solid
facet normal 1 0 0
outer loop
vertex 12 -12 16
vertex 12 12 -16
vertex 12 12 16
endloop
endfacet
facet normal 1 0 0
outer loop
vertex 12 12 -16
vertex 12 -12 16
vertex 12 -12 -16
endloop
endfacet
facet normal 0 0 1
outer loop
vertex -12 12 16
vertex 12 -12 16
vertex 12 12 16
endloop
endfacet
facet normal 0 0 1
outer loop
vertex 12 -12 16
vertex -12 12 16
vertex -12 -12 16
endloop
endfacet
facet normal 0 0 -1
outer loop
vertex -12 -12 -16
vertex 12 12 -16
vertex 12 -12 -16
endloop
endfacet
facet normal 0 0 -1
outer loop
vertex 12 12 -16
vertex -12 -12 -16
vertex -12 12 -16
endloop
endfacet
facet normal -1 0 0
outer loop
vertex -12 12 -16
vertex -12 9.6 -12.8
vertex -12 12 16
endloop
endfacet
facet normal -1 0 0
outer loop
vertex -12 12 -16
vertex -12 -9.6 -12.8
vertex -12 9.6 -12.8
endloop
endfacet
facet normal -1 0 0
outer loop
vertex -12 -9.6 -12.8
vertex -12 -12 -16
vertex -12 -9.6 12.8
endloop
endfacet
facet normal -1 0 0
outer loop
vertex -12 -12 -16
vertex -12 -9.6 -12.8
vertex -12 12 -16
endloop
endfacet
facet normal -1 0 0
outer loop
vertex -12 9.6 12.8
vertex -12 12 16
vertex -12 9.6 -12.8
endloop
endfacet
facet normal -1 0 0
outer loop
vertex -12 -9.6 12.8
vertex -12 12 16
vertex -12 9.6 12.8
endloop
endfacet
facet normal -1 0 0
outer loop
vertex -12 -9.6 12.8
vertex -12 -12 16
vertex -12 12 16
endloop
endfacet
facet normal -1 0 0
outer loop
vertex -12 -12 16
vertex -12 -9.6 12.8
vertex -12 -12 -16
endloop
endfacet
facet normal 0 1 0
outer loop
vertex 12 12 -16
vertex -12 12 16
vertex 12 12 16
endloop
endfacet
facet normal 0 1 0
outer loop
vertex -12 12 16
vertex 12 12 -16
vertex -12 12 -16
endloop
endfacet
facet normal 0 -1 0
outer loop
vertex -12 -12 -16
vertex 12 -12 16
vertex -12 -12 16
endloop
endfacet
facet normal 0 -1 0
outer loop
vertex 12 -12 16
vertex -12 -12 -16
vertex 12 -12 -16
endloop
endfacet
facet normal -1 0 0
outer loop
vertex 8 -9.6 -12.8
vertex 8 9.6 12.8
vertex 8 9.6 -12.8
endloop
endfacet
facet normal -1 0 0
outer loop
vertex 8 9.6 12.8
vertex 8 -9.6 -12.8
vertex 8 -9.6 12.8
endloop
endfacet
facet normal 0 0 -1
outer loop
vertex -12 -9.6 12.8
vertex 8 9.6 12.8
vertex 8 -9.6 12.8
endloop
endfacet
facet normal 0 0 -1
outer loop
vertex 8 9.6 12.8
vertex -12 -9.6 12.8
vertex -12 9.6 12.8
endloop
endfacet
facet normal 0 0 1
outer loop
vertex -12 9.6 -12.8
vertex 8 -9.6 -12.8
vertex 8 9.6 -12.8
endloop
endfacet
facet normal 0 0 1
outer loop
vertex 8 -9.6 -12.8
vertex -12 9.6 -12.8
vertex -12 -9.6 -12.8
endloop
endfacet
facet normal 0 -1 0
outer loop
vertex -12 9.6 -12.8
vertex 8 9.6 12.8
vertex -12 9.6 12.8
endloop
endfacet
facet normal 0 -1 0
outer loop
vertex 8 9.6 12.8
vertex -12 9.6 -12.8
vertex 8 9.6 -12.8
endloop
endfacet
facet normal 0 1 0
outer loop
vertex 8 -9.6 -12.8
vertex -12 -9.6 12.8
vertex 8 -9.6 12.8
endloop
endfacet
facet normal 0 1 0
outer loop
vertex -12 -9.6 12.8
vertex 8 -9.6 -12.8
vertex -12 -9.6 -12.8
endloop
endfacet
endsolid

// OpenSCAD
size=32; //block=32 //item=8

difference(){
cube([size*0.75,size*0.75,size],center=true);
translate([-size*0.375,0,0]){
cube([size*1.25,size*0.6,size*0.8],center=true);
};	//translate
};	//difference
